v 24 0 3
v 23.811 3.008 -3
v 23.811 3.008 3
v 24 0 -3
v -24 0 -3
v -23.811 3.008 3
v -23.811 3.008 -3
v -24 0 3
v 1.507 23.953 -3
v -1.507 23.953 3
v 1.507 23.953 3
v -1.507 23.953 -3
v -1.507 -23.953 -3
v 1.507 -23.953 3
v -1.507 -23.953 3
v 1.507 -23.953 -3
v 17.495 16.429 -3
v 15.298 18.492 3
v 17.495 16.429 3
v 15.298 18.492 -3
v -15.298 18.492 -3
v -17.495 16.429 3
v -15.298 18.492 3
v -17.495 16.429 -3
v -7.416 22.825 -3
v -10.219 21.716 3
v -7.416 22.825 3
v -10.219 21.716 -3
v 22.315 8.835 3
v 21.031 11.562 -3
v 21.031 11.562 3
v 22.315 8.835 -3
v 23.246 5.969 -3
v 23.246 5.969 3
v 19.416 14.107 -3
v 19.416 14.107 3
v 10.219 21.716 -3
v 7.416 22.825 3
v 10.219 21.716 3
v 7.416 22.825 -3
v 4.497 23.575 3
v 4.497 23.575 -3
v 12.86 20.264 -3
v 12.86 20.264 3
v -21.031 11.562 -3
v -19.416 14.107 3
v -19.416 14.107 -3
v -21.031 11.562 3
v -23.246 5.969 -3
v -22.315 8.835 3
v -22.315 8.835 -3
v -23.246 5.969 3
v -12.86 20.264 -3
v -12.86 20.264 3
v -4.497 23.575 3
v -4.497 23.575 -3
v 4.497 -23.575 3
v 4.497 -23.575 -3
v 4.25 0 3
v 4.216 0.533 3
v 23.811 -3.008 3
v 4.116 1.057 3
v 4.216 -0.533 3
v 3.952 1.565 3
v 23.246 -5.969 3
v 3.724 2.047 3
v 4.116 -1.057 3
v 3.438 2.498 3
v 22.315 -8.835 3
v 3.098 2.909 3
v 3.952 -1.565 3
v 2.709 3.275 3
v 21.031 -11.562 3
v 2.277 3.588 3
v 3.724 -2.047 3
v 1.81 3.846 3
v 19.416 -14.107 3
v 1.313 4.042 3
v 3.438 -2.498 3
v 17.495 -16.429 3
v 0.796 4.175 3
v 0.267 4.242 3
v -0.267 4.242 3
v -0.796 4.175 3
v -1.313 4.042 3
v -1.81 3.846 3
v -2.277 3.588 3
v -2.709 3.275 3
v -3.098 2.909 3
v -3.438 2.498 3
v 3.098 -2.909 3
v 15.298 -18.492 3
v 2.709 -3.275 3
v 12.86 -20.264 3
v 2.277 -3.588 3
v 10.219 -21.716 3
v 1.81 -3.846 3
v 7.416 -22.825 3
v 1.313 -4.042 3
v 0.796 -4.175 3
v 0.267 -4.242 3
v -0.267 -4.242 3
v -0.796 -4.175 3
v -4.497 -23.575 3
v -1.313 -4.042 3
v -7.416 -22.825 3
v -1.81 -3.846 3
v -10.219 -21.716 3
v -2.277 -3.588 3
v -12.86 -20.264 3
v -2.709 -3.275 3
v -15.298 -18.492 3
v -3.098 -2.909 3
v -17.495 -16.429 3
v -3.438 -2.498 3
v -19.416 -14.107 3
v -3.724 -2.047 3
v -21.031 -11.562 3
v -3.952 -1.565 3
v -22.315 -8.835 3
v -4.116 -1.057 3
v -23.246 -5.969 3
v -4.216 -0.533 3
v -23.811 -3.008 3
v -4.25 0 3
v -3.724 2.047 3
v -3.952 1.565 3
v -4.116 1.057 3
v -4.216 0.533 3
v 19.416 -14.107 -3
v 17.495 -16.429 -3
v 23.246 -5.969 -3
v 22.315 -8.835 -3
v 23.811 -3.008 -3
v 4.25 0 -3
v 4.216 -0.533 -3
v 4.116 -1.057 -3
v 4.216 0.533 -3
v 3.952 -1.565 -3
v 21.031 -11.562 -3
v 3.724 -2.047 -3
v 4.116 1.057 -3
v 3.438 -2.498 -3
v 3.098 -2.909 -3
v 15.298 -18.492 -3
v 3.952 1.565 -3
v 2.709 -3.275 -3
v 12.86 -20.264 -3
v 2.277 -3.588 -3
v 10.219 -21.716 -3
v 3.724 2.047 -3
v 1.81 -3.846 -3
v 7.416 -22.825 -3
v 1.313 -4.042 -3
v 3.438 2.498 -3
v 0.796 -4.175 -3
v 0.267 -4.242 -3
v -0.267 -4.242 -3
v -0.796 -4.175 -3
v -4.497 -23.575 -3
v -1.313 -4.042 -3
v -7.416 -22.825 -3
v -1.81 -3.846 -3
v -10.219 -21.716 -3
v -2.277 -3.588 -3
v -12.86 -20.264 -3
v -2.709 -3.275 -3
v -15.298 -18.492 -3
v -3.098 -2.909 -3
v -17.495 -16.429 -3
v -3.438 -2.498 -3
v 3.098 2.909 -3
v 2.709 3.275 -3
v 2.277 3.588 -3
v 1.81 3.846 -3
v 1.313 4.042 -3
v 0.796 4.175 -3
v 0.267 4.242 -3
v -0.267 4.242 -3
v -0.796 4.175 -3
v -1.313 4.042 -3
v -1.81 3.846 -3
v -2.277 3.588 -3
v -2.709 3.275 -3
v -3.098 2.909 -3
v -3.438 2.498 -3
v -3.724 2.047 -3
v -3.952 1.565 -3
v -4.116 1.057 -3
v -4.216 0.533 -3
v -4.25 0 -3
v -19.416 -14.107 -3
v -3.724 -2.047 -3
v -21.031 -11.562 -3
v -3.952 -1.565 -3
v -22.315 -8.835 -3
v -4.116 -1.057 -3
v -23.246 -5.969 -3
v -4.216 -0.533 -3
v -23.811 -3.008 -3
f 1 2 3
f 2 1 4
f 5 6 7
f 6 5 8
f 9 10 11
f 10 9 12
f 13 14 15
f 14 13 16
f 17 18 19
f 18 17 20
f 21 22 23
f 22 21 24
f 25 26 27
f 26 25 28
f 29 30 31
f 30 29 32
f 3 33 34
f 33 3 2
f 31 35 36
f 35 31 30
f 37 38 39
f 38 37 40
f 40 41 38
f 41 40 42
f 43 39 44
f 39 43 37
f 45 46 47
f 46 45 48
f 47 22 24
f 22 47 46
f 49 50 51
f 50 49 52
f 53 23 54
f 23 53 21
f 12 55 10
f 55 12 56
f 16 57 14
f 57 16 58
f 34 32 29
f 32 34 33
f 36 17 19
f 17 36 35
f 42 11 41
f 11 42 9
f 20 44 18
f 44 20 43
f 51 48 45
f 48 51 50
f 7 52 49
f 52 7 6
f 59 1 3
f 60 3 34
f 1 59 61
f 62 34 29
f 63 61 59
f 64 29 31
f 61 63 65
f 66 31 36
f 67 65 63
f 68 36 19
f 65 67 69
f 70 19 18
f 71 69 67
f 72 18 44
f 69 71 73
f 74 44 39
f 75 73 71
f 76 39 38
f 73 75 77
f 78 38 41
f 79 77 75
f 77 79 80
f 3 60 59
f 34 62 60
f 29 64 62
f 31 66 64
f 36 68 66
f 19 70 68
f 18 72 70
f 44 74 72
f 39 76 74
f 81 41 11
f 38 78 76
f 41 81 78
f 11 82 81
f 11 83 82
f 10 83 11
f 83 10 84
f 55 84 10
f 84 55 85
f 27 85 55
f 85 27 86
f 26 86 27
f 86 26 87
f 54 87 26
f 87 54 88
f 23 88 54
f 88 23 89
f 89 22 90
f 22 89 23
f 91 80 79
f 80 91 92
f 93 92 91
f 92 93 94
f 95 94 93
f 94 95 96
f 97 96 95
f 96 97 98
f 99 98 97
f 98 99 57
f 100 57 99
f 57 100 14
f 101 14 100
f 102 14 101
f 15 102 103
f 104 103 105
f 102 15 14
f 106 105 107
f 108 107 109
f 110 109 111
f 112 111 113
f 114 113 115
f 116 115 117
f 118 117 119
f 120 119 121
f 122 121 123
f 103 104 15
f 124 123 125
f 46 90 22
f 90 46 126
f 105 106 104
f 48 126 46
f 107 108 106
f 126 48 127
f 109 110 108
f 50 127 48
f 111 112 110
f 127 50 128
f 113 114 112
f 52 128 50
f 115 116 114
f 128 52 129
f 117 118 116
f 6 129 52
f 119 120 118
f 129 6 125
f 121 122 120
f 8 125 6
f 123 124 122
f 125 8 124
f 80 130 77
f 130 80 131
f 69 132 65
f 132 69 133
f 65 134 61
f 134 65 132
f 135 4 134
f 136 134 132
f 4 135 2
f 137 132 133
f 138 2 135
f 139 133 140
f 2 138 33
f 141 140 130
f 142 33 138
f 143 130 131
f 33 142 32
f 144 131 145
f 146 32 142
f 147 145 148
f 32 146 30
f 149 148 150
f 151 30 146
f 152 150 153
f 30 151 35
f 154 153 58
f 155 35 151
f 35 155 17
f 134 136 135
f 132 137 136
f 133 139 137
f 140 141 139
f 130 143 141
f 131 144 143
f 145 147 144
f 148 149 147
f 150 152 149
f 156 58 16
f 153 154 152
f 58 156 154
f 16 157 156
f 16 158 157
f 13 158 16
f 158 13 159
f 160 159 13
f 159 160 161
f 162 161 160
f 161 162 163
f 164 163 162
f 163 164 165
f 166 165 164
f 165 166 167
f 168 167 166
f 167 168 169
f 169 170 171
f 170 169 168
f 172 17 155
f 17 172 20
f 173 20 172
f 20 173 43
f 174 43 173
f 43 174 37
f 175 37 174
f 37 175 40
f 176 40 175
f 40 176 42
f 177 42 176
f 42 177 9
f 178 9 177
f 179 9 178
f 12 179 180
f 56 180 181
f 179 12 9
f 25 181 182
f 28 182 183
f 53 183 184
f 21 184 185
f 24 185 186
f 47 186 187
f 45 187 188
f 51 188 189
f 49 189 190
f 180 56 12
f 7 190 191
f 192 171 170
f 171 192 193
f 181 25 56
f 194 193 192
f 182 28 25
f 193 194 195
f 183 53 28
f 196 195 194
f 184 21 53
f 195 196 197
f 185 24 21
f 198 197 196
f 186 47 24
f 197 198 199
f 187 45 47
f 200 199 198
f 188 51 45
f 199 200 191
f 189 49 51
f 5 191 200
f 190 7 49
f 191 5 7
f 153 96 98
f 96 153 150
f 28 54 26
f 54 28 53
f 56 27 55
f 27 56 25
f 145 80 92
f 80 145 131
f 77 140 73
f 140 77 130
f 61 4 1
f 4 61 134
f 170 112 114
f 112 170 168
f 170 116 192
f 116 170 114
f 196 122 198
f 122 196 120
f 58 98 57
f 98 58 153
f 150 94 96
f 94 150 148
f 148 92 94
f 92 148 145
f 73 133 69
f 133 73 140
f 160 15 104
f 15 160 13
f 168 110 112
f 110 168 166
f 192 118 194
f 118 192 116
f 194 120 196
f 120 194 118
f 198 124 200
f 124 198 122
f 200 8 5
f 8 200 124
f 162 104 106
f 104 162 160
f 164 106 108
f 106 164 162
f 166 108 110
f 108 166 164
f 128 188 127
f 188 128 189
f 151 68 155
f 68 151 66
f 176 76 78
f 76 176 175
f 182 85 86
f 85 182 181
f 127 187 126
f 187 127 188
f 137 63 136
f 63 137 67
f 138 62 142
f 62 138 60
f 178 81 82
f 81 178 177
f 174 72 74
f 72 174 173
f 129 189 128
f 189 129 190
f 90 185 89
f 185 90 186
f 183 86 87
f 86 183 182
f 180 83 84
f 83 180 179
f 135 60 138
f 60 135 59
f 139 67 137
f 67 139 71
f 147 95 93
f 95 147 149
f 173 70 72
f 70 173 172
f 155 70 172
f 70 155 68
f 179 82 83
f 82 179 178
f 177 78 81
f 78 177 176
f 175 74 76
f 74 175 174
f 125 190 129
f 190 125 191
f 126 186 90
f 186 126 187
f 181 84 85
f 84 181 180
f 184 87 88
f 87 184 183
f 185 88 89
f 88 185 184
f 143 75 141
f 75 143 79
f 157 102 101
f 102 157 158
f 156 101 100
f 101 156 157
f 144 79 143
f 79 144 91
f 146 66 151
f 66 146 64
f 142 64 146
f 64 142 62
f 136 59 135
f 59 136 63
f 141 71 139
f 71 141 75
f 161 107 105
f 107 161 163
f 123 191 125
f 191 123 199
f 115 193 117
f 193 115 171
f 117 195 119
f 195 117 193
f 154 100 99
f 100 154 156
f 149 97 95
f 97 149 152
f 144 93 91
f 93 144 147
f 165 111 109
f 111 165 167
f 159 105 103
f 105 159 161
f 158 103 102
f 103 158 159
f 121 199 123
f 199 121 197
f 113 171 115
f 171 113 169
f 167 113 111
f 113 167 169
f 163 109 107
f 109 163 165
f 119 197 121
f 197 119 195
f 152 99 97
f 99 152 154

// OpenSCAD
$fn = 50;


difference() {
	union() {
		translate(v = [0, 0, -3.0000000000]) {
			cylinder(h = 6, r = 24.0000000000);
		}
	}
	union() {
		translate(v = [0, 0, -100.0000000000]) {
			cylinder(h = 200, r = 4.2500000000);
		}
	}
}
